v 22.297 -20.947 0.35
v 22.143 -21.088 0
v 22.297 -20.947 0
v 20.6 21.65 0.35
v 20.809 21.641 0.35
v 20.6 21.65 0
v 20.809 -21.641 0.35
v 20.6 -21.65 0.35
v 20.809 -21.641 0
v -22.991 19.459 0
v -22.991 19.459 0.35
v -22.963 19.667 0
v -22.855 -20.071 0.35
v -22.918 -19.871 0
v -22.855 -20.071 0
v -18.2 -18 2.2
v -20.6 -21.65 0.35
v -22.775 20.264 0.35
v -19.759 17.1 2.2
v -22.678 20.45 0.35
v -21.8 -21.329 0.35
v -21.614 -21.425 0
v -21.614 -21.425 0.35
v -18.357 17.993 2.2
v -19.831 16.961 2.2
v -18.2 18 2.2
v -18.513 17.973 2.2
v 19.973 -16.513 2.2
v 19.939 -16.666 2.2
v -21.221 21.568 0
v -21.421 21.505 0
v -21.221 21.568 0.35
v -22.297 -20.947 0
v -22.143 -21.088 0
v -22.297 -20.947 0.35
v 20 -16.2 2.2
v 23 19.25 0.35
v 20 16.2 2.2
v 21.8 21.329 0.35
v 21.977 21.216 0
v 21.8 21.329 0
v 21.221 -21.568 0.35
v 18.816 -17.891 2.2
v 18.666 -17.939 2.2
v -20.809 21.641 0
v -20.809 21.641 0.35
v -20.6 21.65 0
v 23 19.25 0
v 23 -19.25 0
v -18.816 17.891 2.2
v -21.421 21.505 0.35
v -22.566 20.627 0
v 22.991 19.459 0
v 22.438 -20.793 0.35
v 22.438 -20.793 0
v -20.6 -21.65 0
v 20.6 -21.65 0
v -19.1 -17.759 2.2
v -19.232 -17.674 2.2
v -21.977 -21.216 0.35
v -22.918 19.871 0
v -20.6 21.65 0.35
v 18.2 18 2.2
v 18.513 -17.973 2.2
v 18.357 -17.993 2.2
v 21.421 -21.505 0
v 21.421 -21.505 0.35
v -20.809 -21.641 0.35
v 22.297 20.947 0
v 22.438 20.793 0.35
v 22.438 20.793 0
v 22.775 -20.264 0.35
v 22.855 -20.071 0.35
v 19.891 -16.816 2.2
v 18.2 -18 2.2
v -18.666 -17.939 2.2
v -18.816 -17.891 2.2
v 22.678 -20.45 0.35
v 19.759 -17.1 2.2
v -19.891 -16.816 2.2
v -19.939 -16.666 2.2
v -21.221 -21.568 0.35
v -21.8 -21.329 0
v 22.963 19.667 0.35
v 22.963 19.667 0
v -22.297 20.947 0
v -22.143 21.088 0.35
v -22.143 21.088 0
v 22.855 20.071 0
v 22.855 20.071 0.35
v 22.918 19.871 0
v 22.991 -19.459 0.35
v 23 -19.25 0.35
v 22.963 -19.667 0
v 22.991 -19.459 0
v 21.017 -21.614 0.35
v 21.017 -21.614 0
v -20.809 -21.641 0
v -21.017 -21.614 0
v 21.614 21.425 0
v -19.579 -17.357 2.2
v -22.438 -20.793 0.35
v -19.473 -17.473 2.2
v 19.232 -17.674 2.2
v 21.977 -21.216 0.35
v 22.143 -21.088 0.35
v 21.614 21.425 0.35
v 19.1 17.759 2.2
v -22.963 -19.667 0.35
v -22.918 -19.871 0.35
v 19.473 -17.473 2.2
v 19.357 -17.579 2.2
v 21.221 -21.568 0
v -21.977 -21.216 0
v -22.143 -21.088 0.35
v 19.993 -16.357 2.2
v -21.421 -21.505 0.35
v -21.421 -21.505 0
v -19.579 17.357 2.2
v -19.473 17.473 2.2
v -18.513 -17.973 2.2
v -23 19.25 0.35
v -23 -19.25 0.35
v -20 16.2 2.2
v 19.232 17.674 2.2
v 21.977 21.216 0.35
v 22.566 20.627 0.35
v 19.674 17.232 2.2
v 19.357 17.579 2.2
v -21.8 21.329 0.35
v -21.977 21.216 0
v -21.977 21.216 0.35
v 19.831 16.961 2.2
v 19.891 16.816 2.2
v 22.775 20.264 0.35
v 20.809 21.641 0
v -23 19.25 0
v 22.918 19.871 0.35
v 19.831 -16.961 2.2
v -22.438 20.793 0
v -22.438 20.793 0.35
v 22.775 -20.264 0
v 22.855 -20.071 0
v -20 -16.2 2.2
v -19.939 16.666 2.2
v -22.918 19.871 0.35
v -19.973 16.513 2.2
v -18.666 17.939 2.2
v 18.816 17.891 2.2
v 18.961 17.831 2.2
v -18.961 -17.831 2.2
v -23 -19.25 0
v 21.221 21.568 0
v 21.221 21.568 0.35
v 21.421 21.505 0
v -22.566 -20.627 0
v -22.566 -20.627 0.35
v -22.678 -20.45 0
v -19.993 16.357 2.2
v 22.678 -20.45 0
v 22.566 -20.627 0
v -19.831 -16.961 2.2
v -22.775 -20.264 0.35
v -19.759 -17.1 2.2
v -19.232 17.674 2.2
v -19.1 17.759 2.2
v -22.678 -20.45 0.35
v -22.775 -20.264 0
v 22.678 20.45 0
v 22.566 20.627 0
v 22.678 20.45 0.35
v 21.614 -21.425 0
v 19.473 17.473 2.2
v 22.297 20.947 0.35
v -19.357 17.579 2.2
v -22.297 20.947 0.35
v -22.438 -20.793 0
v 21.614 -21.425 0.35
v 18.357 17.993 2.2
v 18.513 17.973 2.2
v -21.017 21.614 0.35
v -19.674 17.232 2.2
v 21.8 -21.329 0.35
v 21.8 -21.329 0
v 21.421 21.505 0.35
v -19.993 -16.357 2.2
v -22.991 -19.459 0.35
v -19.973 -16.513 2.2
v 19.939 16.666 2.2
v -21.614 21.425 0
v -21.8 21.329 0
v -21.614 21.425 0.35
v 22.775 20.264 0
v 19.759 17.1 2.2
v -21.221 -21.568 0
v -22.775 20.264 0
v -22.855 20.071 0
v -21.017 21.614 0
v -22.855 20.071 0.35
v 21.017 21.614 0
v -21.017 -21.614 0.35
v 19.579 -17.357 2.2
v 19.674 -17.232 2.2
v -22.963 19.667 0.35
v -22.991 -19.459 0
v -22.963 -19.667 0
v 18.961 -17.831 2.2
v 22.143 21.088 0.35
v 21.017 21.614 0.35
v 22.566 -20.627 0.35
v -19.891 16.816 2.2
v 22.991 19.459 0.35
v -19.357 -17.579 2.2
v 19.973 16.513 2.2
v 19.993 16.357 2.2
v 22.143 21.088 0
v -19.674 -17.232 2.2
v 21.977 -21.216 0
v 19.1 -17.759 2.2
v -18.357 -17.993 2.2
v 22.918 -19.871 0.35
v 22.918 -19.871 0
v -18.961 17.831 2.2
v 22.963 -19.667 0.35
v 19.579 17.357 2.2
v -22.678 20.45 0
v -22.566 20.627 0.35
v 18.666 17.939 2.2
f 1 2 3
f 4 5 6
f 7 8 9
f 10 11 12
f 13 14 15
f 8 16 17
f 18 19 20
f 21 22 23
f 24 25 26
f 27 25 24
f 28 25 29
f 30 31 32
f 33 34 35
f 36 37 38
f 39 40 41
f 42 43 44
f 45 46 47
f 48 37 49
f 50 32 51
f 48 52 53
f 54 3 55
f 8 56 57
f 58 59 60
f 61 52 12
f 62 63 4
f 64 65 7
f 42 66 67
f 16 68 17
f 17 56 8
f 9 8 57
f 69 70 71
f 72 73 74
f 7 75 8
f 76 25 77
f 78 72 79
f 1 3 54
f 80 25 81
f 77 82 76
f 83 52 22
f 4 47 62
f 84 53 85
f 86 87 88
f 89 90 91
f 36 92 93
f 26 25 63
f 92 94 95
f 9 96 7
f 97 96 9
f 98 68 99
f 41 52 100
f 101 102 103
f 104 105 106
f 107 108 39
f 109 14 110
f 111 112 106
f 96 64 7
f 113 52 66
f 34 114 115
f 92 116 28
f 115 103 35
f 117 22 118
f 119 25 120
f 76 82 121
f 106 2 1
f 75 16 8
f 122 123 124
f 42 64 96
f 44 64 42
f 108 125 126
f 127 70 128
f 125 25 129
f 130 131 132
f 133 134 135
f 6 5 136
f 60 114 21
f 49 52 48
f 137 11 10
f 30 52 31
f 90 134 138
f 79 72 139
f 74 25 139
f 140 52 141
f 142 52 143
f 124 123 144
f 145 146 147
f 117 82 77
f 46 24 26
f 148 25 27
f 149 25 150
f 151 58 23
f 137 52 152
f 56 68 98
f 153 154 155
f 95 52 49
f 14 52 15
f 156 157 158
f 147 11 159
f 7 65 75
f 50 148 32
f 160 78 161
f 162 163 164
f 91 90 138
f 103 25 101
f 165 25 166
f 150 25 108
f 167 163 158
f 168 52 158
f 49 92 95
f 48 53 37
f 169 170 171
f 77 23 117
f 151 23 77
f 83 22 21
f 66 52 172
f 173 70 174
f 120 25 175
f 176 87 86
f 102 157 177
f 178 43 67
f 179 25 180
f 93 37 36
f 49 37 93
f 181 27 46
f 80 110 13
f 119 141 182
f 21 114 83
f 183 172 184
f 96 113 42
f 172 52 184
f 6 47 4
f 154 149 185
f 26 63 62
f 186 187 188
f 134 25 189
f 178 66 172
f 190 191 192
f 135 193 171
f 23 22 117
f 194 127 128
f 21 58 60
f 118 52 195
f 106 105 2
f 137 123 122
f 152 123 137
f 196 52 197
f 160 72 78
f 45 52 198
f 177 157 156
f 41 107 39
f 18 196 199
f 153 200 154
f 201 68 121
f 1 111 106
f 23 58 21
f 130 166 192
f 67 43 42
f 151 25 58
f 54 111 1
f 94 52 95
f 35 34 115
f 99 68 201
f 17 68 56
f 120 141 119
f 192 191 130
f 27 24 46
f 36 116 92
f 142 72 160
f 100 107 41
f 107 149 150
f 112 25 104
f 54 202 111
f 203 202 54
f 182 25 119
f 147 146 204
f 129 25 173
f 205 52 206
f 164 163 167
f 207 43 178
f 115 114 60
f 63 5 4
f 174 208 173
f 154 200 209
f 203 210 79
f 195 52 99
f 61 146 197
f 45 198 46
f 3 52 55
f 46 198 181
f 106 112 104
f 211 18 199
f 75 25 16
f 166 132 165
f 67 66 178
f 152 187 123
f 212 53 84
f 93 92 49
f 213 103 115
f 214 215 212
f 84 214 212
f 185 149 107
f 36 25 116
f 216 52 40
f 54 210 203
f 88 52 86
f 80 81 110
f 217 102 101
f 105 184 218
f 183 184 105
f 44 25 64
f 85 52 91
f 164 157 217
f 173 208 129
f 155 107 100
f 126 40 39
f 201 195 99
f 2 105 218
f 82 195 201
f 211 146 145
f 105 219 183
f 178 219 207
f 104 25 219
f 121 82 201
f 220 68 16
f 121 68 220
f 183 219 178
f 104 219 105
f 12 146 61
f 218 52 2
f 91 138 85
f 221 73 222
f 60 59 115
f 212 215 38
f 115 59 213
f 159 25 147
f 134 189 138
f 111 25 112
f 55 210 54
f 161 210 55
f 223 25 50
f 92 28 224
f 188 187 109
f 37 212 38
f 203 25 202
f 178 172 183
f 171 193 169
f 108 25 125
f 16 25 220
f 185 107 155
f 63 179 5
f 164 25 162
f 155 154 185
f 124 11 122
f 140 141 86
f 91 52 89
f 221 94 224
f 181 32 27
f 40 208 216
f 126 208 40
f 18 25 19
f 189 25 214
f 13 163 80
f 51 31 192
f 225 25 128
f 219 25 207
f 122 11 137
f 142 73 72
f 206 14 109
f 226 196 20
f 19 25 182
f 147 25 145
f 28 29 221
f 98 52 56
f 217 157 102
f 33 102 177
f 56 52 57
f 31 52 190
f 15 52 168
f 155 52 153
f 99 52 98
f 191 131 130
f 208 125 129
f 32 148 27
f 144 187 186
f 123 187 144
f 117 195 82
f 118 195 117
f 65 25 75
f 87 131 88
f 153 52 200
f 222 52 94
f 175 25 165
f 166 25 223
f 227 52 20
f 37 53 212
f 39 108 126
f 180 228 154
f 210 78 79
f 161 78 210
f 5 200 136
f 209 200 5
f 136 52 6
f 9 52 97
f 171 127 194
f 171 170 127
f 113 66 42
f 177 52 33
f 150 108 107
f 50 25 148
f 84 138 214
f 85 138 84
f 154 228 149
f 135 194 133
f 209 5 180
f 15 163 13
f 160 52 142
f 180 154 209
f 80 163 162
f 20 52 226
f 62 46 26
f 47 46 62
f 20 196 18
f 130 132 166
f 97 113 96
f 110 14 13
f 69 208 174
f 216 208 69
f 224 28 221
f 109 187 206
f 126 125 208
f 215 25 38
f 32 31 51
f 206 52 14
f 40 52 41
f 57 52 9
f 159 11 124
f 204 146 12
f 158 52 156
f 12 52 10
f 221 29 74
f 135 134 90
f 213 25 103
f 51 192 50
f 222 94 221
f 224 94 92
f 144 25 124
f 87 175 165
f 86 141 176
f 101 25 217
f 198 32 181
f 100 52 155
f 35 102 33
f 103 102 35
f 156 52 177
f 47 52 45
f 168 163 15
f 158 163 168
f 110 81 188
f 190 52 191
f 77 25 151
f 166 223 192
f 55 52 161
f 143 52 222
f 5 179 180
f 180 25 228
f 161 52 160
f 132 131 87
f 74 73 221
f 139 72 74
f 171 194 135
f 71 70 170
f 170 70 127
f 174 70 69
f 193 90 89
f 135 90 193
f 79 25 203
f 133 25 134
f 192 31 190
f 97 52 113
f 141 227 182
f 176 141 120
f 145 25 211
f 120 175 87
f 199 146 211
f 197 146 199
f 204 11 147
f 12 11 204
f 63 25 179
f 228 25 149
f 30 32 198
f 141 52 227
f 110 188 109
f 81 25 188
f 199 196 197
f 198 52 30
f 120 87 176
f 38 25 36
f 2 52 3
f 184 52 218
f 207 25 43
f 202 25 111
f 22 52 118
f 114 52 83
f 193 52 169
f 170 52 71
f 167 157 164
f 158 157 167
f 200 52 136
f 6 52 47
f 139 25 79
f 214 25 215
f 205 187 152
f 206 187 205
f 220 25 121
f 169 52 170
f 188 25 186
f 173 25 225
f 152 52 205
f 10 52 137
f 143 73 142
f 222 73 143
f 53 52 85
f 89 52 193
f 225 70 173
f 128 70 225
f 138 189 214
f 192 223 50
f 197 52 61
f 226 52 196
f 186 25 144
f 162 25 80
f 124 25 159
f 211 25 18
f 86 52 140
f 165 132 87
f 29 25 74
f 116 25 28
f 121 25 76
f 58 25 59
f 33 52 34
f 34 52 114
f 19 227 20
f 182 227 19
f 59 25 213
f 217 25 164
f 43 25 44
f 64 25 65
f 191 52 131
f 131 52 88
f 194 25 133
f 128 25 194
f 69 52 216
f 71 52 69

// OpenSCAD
// file: _h30-enclosure-model.scad
/*
  WHEELTEC H30 metal enclosure family geometry.
  Overall envelope without damper heads: 46.0 x 59.5 x 11.7 mm.
  Origin: center of mounting base, bottom face.
*/

include <_h30-pcb-model.scad>

enclosure_width = 46.0;
enclosure_length = 59.5;
enclosure_height = 11.7;
body_length = 43.3;
base_thickness = 2.0;
cover_height = 2.2;
corner_radius = 2.4;
mount_hole_diameter = 3.4;
mount_hole_x = 17.0;
mount_hole_y = 26.0;
wall_thickness = 1.8;

module h30_rounded_rect(size=[10, 10], radius=1) {
    offset(r=radius)
        square([size[0]-2*radius, size[1]-2*radius], center=true);
}

module h30_rounded_plate(size=[10, 10], height=1, radius=1) {
    linear_extrude(height=height)
        h30_rounded_rect(size, radius);
}

module h30_mounting_base() {
    difference() {
        h30_rounded_plate(
            [enclosure_width, enclosure_length],
            base_thickness,
            corner_radius
        );
        for (x=[-mount_hole_x, mount_hole_x], y=[-mount_hole_y, mount_hole_y])
            translate([x, y, -0.1])
                cylinder(d=mount_hole_diameter, h=base_thickness+0.2, $fn=40);
    }
}

module h30_main_housing() {
    lower_height = enclosure_height-cover_height-base_thickness;
    union() {
        h30_mounting_base();
        translate([0, 0, base_thickness])
            difference() {
                h30_rounded_plate(
                    [enclosure_width, body_length],
                    lower_height,
                    corner_radius
                );
                translate([0, 0, wall_thickness])
                    h30_rounded_plate(
                        [enclosure_width-2*wall_thickness,
                         body_length-2*wall_thickness],
                        lower_height,
                        max(0.8, corner_radius-wall_thickness)
                    );
                // USB-C opening centered on the front long wall.
                translate([0, -body_length/2-0.2, 2.5])
                    rotate([-90, 0, 0])
                        hull() {
                            translate([-3.8, 0, 0]) cylinder(d=3.2, h=wall_thickness+0.4, $fn=30);
                            translate([ 3.8, 0, 0]) cylinder(d=3.2, h=wall_thickness+0.4, $fn=30);
                        }
            }
    }
}

module h30_cover() {
    z0 = enclosure_height-cover_height;
    // The original enclosure has a smaller flat top and sloped shoulders.
    translate([0, 0, z0])
        hull() {
            h30_rounded_plate([enclosure_width, body_length], 0.35, corner_radius);
            translate([0, 0, cover_height-0.35])
                h30_rounded_plate([40.0, 36.0], 0.35, 1.8);
        }
}

module h30_cover_screw() {
    union() {
        cylinder(d=4.8, h=1.0, $fn=36);
        translate([0, 0, 0.8]) cylinder(d=2.8, h=5.4, $fn=30);
    }
}

module h30_four_cover_screws() {
    // Four screws enter from the underside and do not appear on the top cover.
    for (x=[-18.0, 18.0], y=[-16.0, 16.0])
        translate([x, y, 0.25]) h30_cover_screw();
}

module h30_plastic_damper_screw() {
    // Simplified nylon isolation screw: lower head, shank, upper retaining head.
    union() {
        cylinder(d=6.4, h=1.2, $fn=40);
        translate([0, 0, 0.8]) cylinder(d=3.0, h=3.0, $fn=32);
        translate([0, 0, 2.9]) cylinder(d1=5.8, d2=4.8, h=1.0, $fn=40);
    }
}

module h30_four_plastic_dampers() {
    for (x=[-mount_hole_x, mount_hole_x], y=[-mount_hole_y, mount_hole_y])
        translate([x, y, -0.65]) h30_plastic_damper_screw();
}

module h30_top_markings() {
    translate([0, 0, enclosure_height+0.01])
        linear_extrude(height=0.12) {
            translate([0, 10.0])
                text("WHEELTEC", size=3.0, halign="center", valign="center",
                     font="Liberation Sans:style=Bold");
            translate([0, -9.0])
                text("H30", size=4.0, halign="center", valign="center",
                     font="Liberation Sans:style=Regular");
            circle(d=1.2, $fn=24);
            for (angle=[0, 120, 240])
                rotate(angle)
                    polygon(points=[[0, 0], [7.0, -0.45], [7.0, 0.45]]);
        }
}

module h30_internal_pcb() {
    translate([0, 0, 2.38]) wheeltec_h30_pcb();
}
// main file
/* WHEELTEC H30 metal cover component. */
include <_h30-enclosure-model.scad>
color("#D7DBDE") translate([0, 0, -(enclosure_height-cover_height)]) h30_cover();
